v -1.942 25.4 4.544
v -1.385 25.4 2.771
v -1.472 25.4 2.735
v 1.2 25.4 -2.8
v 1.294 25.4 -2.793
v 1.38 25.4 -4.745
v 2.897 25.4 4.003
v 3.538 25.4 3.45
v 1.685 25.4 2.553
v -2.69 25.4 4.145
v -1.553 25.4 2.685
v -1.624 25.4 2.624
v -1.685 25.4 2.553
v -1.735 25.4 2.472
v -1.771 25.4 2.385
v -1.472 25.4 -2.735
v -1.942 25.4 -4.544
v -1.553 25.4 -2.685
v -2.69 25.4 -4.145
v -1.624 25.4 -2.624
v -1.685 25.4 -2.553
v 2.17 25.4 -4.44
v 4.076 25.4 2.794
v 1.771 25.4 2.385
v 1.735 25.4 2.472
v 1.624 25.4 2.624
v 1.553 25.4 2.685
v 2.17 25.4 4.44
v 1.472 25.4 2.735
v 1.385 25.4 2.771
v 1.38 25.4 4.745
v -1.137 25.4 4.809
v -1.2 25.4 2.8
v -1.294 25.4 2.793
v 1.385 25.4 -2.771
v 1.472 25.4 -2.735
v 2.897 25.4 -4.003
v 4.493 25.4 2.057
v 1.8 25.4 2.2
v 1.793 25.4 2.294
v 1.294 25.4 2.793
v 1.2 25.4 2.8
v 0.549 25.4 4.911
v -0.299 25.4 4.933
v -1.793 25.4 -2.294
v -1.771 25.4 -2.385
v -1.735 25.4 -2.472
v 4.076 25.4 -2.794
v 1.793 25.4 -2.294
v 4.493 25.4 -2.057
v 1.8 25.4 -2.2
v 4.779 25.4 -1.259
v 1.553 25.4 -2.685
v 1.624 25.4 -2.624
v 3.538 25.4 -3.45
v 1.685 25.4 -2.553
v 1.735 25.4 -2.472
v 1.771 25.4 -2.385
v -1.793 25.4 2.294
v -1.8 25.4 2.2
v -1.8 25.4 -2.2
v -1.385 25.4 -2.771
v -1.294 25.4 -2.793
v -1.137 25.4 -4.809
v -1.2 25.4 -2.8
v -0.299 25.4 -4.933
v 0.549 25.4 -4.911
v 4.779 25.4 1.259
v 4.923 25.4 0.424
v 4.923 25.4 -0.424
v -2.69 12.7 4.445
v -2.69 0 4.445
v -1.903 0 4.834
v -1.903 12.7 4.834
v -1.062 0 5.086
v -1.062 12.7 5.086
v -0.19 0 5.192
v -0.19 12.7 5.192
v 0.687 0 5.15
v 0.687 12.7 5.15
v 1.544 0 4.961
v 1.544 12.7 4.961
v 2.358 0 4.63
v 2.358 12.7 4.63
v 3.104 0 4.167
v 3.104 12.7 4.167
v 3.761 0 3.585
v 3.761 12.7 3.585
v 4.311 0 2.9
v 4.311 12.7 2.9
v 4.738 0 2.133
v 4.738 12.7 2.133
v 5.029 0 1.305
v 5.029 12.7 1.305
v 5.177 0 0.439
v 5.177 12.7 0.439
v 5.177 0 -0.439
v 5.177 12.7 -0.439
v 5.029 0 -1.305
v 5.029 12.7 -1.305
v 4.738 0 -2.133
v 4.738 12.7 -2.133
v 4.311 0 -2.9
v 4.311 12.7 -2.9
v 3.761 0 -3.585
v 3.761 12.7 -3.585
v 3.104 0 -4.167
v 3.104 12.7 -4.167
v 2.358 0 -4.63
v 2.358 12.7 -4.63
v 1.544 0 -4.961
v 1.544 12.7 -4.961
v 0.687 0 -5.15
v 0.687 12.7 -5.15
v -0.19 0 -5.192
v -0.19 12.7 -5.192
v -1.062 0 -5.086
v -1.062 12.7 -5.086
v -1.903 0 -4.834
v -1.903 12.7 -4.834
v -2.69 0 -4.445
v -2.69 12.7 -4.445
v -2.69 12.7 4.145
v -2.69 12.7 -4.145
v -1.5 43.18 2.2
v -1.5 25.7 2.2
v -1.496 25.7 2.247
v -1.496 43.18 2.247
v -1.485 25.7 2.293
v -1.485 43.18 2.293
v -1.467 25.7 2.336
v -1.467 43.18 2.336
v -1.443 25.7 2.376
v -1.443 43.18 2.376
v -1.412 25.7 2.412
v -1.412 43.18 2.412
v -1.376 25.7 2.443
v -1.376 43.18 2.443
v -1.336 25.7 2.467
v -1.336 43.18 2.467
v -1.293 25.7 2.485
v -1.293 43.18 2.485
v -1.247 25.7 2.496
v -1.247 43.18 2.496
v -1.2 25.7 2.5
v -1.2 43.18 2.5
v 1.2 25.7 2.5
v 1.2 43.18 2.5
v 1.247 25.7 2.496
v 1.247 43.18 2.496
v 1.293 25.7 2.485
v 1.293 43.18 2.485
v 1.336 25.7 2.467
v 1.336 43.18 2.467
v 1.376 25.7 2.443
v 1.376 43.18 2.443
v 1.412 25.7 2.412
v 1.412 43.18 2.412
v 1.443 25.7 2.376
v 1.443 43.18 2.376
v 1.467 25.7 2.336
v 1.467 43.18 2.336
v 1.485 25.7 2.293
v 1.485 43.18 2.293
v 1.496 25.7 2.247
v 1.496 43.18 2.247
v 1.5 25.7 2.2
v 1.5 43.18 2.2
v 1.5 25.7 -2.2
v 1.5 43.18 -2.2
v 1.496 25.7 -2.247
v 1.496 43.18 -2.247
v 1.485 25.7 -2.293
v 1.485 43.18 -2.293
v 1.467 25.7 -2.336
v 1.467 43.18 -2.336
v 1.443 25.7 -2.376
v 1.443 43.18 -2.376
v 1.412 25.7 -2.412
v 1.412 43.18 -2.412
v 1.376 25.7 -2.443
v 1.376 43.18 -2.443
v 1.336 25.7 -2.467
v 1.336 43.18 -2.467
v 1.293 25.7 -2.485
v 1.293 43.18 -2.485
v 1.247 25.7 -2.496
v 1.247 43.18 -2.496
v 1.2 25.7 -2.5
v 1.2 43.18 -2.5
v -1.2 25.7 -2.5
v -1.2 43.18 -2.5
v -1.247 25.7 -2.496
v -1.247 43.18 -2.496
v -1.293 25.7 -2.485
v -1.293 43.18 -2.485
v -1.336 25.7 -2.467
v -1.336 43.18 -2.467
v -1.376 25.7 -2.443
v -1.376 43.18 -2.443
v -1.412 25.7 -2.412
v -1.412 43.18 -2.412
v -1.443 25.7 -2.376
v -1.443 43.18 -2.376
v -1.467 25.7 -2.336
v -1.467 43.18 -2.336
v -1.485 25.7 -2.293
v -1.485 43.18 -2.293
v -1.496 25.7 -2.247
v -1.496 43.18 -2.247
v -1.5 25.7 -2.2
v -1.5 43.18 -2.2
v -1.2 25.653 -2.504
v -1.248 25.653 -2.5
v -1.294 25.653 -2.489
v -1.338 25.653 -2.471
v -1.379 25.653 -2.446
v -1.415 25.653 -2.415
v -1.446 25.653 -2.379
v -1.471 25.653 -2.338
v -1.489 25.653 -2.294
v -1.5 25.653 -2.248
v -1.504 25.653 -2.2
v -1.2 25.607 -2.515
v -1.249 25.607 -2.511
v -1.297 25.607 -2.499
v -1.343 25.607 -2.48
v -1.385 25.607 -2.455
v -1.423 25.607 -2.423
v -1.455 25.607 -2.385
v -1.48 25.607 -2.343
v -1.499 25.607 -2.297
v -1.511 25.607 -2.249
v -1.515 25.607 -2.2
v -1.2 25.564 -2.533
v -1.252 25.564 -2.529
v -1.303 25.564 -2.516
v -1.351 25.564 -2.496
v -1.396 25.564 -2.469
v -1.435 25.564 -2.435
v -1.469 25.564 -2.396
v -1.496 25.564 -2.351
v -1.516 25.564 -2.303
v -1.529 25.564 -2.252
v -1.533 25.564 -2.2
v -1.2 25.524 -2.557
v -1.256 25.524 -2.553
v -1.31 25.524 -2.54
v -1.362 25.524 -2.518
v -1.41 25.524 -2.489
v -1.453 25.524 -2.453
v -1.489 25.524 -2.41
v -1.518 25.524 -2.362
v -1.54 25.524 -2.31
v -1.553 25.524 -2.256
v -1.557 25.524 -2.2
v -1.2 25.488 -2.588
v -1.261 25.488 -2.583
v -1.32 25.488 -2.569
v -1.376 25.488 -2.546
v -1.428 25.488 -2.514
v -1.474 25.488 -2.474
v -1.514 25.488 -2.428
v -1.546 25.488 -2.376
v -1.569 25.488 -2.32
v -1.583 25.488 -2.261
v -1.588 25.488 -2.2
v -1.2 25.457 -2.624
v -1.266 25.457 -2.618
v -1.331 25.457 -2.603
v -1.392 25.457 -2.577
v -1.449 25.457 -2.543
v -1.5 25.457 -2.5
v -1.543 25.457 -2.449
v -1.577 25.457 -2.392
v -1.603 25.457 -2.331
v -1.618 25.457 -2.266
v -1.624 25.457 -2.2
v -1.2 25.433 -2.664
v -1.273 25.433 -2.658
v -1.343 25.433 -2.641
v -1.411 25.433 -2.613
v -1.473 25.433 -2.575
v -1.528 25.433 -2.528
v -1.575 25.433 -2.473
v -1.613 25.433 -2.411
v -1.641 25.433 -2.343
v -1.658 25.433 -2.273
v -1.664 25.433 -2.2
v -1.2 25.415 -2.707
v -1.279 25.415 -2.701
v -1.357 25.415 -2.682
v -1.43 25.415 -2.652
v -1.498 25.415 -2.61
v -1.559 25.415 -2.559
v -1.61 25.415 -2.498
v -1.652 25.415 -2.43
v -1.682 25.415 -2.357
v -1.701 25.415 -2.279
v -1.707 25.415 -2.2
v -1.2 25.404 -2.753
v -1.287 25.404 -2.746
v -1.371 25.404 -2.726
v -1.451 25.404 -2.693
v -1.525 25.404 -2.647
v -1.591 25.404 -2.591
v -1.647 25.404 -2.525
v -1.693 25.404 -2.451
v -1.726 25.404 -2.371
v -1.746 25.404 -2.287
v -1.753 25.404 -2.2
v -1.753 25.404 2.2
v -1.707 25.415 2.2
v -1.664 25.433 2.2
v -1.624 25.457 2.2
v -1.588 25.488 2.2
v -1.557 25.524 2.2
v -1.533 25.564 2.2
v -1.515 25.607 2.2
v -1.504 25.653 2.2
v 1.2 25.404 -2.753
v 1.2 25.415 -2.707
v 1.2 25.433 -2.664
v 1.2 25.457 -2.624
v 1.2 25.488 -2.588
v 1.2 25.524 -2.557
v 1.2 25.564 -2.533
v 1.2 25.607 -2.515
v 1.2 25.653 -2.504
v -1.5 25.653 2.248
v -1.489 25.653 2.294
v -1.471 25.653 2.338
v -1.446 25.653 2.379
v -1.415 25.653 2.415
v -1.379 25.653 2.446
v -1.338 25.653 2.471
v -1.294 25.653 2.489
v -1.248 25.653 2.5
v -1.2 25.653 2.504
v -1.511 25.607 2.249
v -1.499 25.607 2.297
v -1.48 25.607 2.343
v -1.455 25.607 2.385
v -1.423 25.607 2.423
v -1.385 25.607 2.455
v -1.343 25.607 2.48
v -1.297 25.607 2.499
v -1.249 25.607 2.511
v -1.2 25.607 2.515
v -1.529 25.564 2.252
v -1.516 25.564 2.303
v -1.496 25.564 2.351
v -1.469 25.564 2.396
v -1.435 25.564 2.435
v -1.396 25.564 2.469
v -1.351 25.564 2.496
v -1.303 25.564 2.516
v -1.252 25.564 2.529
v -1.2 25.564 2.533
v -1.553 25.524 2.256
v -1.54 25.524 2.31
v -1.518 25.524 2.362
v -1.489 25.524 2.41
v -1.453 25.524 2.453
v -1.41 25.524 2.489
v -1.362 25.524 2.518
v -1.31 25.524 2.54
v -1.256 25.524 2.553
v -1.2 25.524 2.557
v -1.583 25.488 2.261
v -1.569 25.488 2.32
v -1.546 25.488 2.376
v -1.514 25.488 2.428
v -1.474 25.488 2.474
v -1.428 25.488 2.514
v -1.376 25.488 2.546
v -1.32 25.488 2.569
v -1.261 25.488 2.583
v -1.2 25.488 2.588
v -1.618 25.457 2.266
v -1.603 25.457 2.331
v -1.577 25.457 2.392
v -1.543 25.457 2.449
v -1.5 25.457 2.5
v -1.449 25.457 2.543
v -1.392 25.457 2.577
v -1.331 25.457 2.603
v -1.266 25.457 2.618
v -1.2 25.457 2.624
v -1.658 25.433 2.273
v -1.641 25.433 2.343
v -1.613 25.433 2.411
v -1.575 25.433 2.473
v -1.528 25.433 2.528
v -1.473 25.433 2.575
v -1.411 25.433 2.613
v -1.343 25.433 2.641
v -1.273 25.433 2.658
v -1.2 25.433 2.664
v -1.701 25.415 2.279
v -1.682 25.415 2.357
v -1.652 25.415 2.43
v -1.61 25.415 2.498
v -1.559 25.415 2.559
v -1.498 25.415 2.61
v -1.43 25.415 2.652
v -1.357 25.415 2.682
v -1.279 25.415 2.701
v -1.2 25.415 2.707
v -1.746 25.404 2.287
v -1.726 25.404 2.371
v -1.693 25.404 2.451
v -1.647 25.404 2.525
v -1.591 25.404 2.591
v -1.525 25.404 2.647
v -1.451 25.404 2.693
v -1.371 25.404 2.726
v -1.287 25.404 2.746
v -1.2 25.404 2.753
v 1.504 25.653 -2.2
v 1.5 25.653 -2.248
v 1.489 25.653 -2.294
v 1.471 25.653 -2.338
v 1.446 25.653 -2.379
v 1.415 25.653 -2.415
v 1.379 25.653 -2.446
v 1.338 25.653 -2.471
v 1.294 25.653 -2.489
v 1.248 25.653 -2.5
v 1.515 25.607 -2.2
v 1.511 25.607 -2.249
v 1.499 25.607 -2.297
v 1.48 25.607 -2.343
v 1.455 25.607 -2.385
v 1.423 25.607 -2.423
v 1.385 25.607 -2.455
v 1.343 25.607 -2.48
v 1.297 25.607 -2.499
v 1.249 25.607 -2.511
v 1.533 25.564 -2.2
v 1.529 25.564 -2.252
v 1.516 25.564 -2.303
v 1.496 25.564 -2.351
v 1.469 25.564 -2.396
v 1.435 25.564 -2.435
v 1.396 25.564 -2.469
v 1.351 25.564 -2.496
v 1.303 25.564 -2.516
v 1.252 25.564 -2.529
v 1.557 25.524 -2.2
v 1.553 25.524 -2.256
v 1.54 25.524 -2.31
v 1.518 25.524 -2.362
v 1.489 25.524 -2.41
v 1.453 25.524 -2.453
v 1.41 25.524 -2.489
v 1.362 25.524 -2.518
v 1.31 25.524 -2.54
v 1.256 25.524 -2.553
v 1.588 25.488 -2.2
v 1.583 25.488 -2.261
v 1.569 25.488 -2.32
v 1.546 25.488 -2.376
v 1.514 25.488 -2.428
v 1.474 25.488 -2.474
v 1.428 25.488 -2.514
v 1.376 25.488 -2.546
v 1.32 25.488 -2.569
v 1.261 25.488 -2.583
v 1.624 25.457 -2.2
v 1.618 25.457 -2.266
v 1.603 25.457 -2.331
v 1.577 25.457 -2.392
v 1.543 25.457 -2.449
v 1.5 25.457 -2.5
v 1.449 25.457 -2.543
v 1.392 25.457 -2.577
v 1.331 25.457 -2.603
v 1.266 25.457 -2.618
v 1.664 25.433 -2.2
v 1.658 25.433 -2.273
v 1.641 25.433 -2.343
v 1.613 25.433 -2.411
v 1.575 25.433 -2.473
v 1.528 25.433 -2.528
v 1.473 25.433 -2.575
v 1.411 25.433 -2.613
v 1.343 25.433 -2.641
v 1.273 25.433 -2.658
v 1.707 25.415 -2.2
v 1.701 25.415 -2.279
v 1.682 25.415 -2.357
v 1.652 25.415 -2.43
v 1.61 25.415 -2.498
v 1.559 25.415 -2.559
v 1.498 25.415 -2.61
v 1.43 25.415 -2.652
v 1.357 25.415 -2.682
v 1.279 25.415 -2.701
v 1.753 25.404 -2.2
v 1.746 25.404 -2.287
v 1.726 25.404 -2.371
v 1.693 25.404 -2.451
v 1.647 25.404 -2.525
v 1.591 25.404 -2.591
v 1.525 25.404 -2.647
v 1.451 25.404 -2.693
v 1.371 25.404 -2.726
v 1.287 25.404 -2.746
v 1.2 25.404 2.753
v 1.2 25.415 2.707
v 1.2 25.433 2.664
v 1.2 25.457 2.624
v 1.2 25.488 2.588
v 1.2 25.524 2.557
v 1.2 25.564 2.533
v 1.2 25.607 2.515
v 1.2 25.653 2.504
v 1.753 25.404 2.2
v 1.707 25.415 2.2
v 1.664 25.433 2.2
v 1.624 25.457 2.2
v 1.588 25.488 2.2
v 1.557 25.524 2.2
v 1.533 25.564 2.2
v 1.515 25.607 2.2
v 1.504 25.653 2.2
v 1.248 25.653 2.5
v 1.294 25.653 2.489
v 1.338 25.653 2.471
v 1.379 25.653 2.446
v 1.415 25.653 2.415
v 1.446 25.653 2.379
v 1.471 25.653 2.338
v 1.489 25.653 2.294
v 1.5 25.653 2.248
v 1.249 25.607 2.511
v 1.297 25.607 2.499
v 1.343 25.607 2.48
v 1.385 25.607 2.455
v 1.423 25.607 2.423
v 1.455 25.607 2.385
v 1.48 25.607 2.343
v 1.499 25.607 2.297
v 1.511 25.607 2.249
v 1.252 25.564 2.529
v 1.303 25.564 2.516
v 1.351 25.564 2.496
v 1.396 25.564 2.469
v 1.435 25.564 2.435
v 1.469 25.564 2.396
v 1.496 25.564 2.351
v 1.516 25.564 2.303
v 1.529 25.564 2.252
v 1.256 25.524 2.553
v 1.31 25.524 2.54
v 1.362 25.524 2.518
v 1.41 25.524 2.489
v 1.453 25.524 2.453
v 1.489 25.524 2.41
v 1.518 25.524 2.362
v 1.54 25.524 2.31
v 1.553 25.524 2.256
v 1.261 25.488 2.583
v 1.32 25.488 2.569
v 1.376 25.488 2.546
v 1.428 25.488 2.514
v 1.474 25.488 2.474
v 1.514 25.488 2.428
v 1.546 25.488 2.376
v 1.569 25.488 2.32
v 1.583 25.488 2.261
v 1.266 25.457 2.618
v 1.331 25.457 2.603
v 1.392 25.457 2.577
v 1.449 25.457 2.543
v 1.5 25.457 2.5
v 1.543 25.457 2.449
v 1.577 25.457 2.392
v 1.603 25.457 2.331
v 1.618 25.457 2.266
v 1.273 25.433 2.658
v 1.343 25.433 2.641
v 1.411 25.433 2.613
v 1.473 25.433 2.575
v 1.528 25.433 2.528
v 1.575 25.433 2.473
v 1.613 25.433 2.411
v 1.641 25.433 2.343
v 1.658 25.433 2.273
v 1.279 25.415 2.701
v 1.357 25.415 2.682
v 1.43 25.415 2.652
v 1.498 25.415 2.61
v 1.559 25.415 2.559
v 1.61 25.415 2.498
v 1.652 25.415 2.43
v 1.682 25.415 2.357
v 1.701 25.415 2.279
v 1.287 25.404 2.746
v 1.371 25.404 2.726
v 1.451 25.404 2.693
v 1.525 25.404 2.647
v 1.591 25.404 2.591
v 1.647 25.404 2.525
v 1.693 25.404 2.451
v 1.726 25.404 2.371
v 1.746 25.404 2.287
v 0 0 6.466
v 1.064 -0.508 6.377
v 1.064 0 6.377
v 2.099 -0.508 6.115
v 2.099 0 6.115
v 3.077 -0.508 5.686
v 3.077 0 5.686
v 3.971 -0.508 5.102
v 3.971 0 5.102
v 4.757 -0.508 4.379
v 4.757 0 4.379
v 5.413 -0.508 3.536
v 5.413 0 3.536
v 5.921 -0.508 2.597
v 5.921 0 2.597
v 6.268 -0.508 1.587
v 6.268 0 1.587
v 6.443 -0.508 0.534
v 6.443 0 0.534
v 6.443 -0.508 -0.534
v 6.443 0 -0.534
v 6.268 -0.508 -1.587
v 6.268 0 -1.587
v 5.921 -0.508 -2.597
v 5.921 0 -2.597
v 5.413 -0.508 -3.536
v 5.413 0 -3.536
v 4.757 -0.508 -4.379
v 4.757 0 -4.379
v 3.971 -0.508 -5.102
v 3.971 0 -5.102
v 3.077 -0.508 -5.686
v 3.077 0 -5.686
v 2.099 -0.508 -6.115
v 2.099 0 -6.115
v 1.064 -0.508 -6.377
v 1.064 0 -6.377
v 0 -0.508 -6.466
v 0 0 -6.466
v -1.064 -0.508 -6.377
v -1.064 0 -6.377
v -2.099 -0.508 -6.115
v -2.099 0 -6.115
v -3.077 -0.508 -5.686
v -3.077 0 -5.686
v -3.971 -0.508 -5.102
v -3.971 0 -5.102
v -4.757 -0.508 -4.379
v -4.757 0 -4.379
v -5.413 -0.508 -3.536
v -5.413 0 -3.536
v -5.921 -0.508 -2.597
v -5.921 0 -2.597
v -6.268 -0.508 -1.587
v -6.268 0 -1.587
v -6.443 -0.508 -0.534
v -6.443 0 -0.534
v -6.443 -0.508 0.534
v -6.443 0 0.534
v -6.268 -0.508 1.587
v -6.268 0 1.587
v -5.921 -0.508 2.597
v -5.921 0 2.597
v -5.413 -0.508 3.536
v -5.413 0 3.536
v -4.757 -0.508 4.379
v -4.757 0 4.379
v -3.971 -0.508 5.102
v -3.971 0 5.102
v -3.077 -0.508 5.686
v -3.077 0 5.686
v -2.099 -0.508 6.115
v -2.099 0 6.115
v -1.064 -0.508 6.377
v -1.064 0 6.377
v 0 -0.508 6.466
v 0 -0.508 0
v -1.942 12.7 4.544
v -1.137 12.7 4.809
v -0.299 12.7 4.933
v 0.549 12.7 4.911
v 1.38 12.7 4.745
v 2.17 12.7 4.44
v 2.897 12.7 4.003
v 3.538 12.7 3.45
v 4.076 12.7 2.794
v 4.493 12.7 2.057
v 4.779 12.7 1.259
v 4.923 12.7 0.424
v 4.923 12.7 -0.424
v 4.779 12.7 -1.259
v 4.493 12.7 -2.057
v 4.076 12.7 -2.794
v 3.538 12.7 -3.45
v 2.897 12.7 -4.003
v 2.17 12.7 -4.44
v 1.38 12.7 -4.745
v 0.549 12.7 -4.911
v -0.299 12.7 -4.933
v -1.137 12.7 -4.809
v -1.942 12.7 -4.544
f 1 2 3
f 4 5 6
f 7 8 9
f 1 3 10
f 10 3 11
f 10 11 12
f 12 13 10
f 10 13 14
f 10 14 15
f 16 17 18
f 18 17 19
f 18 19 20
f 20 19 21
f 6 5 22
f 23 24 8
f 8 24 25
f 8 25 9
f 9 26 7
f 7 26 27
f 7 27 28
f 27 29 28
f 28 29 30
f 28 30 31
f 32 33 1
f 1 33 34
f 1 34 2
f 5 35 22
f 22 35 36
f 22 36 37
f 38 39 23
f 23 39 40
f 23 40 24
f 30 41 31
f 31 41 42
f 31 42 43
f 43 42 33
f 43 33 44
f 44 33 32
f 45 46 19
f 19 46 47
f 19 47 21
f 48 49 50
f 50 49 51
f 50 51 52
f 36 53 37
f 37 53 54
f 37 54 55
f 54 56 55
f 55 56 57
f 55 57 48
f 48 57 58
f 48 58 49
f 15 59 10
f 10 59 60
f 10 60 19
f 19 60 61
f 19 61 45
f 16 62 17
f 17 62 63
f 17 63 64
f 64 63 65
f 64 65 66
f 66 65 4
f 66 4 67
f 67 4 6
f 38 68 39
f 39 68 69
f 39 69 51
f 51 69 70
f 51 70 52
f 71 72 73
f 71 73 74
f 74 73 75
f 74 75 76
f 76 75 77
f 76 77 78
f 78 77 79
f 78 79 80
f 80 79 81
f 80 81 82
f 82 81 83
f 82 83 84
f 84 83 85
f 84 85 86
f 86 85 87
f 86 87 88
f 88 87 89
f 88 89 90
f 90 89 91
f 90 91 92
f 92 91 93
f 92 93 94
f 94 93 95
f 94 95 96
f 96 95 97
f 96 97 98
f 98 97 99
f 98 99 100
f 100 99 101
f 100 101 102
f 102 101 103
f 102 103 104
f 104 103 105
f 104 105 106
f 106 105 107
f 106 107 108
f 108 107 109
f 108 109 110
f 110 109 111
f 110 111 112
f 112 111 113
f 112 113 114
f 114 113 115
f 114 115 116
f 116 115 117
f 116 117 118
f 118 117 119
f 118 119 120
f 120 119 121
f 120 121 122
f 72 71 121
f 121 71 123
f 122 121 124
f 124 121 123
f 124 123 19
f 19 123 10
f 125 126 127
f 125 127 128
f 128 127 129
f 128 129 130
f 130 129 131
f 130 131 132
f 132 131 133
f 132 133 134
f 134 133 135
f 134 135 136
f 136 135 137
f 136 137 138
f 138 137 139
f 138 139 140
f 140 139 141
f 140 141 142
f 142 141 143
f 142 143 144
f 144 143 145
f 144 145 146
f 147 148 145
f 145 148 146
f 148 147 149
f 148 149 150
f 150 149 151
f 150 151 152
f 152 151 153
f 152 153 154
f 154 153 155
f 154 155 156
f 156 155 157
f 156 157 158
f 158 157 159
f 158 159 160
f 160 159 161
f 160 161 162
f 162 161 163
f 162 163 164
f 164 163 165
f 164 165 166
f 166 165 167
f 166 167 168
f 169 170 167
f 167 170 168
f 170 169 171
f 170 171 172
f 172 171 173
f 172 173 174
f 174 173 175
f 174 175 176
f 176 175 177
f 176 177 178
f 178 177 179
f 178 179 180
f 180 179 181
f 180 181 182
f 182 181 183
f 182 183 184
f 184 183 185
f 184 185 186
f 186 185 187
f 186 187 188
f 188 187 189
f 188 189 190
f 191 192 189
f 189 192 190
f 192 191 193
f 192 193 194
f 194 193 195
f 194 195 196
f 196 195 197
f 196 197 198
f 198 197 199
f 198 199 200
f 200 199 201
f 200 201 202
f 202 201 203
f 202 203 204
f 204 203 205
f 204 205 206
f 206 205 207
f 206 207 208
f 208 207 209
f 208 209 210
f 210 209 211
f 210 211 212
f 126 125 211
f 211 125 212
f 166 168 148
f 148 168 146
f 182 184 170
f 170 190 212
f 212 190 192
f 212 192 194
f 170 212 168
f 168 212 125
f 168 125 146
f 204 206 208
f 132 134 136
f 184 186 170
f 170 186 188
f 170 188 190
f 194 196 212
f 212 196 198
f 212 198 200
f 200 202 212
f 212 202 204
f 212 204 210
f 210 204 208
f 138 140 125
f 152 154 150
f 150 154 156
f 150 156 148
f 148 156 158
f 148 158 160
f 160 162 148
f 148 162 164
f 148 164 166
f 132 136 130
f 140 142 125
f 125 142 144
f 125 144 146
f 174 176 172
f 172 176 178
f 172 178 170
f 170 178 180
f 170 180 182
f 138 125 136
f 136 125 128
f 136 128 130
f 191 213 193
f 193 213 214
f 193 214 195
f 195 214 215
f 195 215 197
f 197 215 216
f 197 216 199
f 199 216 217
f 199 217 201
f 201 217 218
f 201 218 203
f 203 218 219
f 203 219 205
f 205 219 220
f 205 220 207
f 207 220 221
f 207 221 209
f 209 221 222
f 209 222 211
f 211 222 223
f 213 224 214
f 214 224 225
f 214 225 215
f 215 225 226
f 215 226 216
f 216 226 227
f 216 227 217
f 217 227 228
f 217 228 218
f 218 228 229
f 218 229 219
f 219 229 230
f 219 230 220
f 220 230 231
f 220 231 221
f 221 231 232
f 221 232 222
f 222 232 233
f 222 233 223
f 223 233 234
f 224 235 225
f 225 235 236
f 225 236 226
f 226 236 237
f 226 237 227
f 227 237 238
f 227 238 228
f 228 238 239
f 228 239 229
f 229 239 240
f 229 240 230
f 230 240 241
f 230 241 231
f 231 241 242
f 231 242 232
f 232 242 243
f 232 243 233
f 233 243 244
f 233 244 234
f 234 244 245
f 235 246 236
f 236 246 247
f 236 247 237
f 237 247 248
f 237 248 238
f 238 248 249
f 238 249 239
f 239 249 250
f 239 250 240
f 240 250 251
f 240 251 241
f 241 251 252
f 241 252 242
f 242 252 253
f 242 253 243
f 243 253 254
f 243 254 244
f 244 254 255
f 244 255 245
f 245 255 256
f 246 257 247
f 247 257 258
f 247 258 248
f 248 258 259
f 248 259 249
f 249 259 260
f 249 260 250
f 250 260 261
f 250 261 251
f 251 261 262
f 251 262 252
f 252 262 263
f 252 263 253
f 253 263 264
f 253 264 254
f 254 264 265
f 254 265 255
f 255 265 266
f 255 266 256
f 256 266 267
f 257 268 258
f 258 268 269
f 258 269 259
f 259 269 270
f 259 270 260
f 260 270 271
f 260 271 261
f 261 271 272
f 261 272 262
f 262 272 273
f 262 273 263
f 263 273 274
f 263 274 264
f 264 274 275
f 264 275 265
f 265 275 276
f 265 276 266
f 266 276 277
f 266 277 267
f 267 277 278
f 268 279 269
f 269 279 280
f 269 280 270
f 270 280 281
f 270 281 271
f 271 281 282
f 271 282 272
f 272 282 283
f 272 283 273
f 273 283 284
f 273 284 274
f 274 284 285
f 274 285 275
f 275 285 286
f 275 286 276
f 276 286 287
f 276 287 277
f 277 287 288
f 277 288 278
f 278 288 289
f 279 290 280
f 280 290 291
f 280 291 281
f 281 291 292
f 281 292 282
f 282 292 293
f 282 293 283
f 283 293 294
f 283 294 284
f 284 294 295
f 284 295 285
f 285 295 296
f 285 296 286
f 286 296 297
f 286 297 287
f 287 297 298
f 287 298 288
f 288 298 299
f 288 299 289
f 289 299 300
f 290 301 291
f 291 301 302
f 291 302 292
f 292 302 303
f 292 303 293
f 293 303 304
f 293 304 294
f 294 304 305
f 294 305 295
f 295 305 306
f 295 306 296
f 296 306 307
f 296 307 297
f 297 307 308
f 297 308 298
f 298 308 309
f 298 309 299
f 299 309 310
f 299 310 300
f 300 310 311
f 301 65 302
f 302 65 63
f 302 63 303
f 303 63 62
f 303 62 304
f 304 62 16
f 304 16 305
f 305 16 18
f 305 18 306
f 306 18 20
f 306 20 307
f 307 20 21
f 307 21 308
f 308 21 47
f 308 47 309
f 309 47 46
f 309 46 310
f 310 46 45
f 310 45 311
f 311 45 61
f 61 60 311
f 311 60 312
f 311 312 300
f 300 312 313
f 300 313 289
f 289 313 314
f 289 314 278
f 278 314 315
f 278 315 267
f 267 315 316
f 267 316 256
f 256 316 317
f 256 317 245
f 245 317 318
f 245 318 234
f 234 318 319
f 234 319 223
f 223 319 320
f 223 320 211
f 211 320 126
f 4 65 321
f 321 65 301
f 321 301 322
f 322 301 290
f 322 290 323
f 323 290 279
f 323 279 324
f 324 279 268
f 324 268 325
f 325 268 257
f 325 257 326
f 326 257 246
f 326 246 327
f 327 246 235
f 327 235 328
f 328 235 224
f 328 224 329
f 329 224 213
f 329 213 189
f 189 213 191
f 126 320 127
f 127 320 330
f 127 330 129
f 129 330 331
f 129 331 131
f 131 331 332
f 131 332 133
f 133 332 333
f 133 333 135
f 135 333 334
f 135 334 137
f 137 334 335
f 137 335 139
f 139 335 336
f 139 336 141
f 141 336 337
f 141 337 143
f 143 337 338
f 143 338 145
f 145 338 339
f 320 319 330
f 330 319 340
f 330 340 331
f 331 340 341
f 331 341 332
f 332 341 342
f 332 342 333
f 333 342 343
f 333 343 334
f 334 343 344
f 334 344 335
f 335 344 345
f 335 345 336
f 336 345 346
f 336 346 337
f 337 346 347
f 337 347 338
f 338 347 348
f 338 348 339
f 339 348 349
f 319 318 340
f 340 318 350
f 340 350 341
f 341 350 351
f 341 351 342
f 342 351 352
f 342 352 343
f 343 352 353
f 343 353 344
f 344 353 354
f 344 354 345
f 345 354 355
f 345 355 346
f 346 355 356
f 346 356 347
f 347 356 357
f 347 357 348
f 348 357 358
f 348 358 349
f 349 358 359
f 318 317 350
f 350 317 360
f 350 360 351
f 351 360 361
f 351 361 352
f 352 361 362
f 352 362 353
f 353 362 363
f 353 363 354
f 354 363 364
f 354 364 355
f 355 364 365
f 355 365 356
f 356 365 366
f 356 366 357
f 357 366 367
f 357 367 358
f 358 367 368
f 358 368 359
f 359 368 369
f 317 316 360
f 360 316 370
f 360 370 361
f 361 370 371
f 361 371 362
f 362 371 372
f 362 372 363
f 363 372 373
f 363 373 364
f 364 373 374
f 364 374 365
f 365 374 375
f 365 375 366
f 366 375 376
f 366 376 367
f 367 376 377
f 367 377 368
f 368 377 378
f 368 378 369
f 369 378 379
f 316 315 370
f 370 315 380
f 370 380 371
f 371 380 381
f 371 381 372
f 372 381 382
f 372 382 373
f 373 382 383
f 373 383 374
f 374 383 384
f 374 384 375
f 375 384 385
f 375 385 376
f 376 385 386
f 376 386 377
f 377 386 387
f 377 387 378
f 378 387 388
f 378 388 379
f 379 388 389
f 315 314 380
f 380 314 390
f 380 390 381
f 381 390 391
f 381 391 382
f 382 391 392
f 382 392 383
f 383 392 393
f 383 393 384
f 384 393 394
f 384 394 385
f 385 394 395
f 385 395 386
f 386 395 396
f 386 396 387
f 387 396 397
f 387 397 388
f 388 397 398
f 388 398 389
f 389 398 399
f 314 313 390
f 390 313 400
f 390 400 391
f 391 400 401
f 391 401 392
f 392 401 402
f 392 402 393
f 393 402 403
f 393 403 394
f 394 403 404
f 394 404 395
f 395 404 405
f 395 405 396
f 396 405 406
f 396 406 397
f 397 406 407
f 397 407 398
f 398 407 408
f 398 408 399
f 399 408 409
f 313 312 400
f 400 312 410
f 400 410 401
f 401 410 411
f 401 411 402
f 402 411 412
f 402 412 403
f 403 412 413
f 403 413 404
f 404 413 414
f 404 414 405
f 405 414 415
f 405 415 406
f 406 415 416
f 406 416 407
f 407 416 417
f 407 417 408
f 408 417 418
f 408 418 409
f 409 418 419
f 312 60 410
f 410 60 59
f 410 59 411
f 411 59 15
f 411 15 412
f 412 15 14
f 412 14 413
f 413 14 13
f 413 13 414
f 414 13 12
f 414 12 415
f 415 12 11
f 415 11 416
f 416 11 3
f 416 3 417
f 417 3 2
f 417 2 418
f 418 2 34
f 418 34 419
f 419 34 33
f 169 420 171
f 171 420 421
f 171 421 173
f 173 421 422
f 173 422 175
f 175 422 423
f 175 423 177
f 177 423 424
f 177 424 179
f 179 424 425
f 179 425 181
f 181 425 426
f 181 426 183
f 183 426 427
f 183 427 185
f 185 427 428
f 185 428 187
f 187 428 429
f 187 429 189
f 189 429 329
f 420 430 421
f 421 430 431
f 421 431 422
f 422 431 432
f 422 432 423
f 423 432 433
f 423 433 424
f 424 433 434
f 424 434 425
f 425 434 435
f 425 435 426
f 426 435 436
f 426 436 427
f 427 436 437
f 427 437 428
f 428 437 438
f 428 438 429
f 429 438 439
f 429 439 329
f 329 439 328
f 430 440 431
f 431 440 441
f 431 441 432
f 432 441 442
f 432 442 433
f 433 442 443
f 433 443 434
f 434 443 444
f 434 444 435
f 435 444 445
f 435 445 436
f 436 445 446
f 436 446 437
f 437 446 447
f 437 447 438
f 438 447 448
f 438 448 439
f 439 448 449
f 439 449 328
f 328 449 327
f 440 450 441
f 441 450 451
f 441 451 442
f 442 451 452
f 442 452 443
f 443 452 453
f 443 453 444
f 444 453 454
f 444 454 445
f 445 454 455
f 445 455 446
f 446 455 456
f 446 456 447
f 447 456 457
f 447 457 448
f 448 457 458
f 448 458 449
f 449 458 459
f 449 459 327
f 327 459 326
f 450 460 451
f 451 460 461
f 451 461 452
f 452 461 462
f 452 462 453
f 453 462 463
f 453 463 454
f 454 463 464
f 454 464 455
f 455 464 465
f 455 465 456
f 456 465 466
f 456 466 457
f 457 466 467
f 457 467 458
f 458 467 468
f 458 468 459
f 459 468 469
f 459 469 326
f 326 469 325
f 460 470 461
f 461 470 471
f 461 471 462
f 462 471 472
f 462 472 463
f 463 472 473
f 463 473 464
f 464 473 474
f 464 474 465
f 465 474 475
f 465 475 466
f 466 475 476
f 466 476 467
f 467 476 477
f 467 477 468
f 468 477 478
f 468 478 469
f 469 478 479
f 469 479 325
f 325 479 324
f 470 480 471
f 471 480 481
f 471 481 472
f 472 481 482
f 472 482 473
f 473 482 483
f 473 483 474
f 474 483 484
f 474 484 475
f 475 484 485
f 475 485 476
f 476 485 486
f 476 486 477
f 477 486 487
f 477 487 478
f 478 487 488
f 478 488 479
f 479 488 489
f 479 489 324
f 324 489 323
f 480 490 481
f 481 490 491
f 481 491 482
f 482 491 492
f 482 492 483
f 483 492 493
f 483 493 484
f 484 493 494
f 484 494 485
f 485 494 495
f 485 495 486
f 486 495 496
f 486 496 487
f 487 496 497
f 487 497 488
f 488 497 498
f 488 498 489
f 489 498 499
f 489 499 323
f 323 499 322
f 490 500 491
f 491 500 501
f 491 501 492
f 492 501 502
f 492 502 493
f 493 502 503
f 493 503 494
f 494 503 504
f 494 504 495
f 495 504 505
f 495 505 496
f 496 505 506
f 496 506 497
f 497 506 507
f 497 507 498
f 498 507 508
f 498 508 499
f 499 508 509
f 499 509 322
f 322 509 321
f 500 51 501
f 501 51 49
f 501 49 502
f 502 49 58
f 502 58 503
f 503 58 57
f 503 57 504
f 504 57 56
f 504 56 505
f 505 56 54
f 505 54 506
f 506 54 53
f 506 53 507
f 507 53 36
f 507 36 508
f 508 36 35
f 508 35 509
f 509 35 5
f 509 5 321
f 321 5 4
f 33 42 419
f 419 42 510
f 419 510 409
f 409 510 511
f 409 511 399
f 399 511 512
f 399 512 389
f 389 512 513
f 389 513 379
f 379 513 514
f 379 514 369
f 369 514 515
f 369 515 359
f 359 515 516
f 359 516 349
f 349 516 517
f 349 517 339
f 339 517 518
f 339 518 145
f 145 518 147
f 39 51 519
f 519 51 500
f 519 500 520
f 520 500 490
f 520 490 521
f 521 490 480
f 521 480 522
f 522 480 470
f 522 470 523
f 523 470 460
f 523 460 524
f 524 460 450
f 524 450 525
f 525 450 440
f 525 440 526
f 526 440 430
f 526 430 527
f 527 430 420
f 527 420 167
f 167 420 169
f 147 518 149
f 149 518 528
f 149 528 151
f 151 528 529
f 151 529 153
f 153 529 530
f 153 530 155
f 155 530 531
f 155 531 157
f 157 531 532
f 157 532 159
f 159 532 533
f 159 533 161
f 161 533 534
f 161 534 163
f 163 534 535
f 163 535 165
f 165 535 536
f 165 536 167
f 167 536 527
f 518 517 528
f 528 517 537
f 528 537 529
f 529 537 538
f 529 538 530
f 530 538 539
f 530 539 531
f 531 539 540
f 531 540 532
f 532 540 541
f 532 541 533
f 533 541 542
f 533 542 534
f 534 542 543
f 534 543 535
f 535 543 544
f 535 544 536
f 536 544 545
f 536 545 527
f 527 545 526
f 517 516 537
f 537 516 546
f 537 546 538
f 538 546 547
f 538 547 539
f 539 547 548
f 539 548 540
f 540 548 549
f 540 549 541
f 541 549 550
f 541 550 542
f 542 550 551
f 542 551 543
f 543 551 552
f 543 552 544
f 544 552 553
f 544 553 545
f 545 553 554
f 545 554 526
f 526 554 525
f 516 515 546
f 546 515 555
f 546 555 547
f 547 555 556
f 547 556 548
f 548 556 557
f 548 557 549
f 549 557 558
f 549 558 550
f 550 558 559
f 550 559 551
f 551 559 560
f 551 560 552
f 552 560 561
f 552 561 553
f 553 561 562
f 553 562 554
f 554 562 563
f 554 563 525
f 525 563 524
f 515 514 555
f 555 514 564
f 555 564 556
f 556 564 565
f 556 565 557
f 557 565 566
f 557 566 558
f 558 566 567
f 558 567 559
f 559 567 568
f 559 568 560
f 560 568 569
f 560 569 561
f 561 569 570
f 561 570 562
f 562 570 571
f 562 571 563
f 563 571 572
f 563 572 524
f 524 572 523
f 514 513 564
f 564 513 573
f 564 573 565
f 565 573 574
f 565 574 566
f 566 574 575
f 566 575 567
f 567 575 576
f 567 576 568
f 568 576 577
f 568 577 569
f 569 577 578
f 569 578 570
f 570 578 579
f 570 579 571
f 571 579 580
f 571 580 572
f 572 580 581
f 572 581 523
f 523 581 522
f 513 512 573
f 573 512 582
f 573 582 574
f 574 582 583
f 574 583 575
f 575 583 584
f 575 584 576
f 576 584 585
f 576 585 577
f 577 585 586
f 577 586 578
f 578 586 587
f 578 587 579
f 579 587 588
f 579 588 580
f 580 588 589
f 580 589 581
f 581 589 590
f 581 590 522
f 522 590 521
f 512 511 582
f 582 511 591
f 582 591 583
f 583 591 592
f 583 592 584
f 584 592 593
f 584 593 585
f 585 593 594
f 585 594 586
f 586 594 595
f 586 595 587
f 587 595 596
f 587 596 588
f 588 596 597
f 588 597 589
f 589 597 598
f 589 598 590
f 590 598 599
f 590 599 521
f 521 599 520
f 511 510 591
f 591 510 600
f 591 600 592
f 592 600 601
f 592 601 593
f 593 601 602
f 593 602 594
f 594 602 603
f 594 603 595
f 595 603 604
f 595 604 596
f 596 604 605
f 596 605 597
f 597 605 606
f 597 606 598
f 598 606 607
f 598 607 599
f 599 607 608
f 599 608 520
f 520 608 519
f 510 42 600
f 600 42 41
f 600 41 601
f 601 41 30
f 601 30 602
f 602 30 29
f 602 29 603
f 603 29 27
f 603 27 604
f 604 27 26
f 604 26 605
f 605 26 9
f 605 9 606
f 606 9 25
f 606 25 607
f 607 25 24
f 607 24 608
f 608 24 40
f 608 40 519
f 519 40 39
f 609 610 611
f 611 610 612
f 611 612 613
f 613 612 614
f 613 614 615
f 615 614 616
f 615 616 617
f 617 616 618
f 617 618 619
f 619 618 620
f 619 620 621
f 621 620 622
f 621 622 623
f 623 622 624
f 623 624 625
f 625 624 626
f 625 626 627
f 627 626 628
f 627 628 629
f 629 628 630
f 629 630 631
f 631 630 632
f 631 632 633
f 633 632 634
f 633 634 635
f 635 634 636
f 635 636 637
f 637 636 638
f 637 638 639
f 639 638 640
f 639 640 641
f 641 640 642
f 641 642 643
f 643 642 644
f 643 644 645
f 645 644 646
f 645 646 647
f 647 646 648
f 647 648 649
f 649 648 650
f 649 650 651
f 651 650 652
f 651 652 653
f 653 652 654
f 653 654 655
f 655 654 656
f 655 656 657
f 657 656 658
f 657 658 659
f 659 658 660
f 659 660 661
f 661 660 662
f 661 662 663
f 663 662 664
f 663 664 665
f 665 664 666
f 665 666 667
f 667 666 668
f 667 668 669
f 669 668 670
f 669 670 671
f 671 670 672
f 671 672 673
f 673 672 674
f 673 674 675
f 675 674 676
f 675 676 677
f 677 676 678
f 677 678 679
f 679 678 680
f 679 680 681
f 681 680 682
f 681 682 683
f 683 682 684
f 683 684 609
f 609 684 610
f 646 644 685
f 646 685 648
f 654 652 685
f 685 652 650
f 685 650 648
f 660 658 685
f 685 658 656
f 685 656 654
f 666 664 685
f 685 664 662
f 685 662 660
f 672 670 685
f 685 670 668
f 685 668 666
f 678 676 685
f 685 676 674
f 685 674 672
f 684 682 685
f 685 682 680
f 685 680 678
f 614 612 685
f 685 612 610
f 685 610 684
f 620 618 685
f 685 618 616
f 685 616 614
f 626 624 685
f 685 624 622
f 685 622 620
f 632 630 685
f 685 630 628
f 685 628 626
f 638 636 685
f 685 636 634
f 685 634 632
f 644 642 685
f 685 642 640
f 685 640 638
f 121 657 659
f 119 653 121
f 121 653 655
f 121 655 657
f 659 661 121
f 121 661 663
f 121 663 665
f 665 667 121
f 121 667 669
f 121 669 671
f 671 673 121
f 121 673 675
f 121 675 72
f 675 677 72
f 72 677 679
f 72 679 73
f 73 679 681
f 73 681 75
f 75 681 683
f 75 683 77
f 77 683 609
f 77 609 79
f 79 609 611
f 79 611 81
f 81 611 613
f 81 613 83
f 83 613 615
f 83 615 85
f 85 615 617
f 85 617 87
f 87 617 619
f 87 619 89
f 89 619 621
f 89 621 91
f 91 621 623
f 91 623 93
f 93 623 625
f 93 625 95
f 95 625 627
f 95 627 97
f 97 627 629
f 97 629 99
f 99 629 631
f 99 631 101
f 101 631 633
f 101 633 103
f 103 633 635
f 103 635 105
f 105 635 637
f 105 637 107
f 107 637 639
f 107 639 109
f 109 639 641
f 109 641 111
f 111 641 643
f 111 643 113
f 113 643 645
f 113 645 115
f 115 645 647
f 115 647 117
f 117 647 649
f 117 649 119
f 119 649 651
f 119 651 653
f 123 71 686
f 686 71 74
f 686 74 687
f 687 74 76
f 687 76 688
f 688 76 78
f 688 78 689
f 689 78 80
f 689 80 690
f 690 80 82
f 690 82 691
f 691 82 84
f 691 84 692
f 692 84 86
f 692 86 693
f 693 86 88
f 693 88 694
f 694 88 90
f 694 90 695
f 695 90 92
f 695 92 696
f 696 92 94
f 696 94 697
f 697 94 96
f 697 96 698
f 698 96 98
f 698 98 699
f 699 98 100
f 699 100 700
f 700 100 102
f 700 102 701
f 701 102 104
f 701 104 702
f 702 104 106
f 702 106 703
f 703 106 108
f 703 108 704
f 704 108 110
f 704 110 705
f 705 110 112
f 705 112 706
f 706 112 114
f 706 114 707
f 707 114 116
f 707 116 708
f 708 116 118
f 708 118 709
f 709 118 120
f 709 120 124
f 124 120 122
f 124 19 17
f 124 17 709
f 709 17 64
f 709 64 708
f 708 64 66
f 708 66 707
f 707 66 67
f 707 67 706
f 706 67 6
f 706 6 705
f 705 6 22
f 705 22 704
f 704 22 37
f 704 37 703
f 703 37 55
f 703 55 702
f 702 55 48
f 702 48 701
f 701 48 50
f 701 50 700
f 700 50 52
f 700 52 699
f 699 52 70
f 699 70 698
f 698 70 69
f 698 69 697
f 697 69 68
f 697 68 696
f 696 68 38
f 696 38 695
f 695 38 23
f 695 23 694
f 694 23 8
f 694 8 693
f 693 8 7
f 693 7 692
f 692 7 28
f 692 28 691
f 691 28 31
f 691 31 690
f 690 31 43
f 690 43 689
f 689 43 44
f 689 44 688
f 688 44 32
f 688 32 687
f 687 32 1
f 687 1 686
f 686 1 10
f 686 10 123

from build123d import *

# Parameters (mm, degrees)
BOSS_EXTRUDE1_DEPTH = 25.4
BOSS_EXTRUDE2_DEPTH = 17.78
FILLET1_R           = 0.3
SKETCH3_R           = 6.46557
BOSS_EXTRUDE3_DEPTH = 0.508
SKETCH4_OUTSIDE_W   = 24.404
SKETCH4_OUTSIDE_H   = 24.404
SKETCH4_OUTSIDE_R   = 4.94157
CUT_EXTRUDE1_DEPTH  = 12.7


with BuildPart() as part:
    # Sketch1 → Boss-Extrude1 (new body)
    with BuildSketch(Plane(origin=(0, 0, 0), x_dir=(1, 0, 0), z_dir=(0, 1, 0))):
        with BuildLine():
            Line((-2.68996703, 4.445), (-2.68996703, -4.445))
            ThreePointArc((-2.68996703, -4.445), (5.19557, 0), (-2.68996703, 4.445))
        make_face()
    extrude(amount=BOSS_EXTRUDE1_DEPTH)

    # Sketch2 → Boss-Extrude2 (add)
    with BuildSketch(Plane(origin=(0, 25.4, 0), x_dir=(1, 0, 0), z_dir=(0, 1, 0))):
        with BuildLine():
            Line((-1.2, -2.5), (1.2, -2.5))
            ThreePointArc((1.2, -2.5), (1.412132034, -2.412132034), (1.5, -2.2))
            Line((1.5, -2.2), (1.5, 2.2))
            ThreePointArc((1.5, 2.2), (1.412132034, 2.412132034), (1.2, 2.5))
            Line((1.2, 2.5), (-1.2, 2.5))
            ThreePointArc((-1.2, 2.5), (-1.412132034, 2.412132034), (-1.5, 2.2))
            Line((-1.5, 2.2), (-1.5, -2.2))
            ThreePointArc((-1.5, -2.2), (-1.412132034, -2.412132034), (-1.2, -2.5))
        make_face()
    extrude(amount=BOSS_EXTRUDE2_DEPTH)

    # Fillet1
    fillet1_edges = [part.edges().sort_by_distance(p)[0] for p in [
        (-1.412132034, 25.4, 2.412132034),
        (0, 25.4, 2.5),
        (1.412132034, 25.4, 2.412132034),
        (1.5, 25.4, 0),
        (1.412132034, 25.4, -2.412132034),
        (0, 25.4, -2.5),
        (-1.412132034, 25.4, -2.412132034),
        (-1.5, 25.4, 0),
    ]]
    fillet(fillet1_edges, radius=FILLET1_R)

    # Sketch3 → Boss-Extrude3 (add)
    with BuildSketch(Plane.XZ):
        Circle(SKETCH3_R)
    extrude(amount=BOSS_EXTRUDE3_DEPTH)

    # Sketch4 outside → Cut-Extrude1 (cut)
    with BuildSketch(Plane(origin=(0, 25.4, 0), x_dir=(1, 0, 0), z_dir=(0, 1, 0))):
        Rectangle(SKETCH4_OUTSIDE_W, SKETCH4_OUTSIDE_H)
        Circle(SKETCH4_OUTSIDE_R, mode=Mode.SUBTRACT)
    extrude(amount=-CUT_EXTRUDE1_DEPTH, mode=Mode.SUBTRACT)


solid = part.part
